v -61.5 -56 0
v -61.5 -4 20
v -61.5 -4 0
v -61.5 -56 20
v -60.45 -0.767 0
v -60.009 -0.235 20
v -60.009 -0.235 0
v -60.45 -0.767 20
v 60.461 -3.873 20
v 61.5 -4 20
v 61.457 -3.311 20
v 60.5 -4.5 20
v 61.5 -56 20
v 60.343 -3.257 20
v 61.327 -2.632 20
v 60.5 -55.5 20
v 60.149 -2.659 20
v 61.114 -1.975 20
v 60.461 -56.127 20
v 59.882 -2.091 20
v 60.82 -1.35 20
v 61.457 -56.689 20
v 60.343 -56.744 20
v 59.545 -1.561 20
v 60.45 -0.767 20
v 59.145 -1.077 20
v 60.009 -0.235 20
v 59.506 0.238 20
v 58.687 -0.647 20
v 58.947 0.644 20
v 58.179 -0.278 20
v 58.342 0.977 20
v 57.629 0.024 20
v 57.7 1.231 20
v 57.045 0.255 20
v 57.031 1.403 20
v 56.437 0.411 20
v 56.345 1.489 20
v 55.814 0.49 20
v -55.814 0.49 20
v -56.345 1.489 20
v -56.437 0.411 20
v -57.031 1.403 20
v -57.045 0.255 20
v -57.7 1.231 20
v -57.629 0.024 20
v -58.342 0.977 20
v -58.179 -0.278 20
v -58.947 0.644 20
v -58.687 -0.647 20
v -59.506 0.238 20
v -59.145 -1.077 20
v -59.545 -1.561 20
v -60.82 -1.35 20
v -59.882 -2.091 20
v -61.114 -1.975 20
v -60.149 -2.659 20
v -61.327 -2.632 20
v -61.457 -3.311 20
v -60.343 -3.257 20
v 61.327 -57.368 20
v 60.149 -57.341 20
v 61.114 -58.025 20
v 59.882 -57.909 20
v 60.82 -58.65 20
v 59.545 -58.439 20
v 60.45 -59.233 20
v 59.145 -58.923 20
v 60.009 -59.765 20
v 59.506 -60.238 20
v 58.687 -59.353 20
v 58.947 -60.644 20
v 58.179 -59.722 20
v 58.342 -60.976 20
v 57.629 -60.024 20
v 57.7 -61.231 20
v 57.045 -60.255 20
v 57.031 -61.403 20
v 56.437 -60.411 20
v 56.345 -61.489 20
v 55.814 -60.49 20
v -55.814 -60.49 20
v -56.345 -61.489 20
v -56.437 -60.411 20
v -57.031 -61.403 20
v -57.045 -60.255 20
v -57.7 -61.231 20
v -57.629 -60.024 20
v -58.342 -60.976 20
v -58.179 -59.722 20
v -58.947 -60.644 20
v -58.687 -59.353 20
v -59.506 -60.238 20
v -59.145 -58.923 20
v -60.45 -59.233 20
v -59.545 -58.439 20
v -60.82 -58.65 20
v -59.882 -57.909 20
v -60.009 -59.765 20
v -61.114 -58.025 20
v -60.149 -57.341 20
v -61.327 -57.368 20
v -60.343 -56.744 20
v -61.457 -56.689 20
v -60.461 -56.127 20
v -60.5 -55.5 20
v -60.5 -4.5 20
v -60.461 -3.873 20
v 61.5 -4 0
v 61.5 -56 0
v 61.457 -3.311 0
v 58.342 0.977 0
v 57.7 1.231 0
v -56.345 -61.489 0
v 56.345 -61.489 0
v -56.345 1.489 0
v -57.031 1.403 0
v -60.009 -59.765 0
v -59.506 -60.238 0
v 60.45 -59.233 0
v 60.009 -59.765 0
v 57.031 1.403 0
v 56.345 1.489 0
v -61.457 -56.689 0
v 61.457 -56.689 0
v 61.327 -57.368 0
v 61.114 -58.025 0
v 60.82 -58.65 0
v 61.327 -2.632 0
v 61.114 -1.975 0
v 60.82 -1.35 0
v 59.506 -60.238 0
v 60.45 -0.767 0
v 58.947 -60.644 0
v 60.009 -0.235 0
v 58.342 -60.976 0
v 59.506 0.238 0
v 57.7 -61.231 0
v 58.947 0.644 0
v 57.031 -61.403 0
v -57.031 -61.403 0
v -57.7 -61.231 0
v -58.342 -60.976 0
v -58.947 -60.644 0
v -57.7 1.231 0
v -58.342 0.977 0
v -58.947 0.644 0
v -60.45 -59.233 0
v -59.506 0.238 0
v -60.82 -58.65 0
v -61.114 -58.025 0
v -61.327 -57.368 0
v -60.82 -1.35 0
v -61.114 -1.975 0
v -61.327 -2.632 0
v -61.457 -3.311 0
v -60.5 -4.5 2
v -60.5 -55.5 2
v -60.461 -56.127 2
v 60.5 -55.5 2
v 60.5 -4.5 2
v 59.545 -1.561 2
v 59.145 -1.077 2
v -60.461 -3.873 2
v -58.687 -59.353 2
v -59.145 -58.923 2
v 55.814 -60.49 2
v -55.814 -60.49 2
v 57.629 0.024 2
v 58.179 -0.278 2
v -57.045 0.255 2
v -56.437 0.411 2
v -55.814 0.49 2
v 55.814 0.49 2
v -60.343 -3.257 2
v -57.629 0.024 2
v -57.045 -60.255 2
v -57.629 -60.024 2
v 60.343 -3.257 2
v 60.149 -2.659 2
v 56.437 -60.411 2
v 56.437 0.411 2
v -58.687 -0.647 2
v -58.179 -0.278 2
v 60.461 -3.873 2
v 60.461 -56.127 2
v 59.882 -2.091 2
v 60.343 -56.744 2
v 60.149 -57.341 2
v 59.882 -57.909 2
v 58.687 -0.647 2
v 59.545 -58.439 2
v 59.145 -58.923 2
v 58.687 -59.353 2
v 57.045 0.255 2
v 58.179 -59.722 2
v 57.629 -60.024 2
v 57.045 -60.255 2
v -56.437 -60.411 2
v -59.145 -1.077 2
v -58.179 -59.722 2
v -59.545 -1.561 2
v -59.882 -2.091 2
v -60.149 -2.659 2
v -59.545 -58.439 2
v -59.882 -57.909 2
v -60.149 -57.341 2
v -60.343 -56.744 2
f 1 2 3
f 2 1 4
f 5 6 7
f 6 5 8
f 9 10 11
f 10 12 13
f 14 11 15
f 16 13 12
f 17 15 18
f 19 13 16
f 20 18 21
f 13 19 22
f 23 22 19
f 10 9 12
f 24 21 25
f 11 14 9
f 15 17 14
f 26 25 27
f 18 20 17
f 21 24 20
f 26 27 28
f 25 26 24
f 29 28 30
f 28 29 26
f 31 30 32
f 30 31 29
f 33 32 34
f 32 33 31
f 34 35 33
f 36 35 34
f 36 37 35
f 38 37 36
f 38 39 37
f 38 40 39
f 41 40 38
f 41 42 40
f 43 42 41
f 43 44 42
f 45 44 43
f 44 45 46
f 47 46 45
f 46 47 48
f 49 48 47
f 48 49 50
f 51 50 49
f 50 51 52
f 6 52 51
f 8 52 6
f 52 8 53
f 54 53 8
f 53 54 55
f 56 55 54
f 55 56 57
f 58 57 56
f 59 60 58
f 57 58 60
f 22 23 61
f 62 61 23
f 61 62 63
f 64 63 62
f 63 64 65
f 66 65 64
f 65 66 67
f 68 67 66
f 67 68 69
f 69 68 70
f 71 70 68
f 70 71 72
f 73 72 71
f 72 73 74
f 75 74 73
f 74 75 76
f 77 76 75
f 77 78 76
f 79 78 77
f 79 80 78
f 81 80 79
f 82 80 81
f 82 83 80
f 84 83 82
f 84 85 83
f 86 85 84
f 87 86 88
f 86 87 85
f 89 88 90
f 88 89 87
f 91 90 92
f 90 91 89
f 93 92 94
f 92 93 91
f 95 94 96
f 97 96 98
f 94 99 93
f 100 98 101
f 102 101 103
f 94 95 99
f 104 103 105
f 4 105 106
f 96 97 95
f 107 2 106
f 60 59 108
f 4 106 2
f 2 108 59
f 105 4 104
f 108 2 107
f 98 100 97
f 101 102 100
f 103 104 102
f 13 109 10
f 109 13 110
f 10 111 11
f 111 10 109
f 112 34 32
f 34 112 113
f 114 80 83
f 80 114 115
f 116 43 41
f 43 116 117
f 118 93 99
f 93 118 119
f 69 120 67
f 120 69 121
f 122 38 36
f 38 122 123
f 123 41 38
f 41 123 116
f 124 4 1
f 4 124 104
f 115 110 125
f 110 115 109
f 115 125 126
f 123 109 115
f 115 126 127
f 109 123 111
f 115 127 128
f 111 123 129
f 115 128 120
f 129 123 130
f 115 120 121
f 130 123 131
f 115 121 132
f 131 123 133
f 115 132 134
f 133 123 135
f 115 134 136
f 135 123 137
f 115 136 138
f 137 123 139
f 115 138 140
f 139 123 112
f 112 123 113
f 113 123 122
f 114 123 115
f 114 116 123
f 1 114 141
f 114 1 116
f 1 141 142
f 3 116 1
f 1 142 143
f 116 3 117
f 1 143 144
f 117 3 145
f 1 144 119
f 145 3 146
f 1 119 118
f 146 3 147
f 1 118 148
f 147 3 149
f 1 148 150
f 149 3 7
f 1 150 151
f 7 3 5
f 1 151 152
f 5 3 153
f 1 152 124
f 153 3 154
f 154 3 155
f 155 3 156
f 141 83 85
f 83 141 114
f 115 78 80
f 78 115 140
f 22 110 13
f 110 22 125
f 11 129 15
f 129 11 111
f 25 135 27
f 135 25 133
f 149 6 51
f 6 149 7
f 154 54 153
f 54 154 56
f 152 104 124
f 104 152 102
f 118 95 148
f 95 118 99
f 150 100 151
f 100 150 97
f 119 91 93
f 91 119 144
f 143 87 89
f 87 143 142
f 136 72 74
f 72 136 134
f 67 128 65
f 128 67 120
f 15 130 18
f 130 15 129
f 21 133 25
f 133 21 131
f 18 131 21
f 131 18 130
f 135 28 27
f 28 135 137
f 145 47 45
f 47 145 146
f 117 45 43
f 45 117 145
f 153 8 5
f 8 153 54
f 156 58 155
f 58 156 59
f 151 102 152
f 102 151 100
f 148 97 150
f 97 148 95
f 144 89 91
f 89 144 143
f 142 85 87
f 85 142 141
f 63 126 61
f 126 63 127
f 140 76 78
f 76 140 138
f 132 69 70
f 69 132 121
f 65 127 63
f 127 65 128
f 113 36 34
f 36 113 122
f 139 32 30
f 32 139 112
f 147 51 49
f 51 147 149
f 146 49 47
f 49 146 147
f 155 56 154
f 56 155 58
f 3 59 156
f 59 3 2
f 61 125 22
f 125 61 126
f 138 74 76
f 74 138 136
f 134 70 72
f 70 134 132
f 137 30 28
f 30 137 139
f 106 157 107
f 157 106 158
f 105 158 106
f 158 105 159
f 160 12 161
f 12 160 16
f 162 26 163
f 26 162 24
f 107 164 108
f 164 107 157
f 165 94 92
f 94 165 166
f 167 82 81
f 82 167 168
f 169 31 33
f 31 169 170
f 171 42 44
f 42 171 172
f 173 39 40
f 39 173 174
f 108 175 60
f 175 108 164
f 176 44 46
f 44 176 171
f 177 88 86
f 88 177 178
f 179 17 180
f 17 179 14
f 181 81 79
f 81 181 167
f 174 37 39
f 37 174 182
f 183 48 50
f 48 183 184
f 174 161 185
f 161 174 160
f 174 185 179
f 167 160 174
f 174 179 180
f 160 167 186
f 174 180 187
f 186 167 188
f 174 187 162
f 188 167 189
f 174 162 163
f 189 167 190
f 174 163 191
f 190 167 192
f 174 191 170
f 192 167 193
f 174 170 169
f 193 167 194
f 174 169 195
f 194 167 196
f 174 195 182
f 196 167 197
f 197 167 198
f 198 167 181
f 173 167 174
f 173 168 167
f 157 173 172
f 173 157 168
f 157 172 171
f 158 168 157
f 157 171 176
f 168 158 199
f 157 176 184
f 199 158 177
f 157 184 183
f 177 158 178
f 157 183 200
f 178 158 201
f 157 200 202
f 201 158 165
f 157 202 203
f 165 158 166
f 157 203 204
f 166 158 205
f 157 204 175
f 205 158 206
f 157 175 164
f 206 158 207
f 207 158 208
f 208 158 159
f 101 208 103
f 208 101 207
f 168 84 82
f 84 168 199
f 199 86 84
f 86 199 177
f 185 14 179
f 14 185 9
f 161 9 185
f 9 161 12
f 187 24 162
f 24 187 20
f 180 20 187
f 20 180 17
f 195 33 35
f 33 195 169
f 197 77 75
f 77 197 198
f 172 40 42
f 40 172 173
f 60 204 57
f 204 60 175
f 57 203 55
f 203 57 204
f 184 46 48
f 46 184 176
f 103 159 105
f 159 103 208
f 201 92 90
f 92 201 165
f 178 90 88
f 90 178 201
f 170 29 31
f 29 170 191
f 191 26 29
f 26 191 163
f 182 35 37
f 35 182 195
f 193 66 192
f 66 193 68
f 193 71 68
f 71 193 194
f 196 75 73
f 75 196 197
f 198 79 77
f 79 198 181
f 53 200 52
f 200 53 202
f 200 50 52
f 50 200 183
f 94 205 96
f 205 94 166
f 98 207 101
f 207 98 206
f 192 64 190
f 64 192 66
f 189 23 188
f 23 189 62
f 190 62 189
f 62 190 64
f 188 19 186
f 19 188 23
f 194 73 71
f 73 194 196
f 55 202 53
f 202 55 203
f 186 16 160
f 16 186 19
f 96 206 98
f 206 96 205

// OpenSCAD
$fn = 50;


difference() {
	union() {
		translate(v = [0, -30.0000000000, 0]) {
			hull() {
				translate(v = [-56.0000000000, 26.0000000000, 0]) {
					cylinder(h = 20, r = 5.5000000000);
				}
				translate(v = [56.0000000000, 26.0000000000, 0]) {
					cylinder(h = 20, r = 5.5000000000);
				}
				translate(v = [-56.0000000000, -26.0000000000, 0]) {
					cylinder(h = 20, r = 5.5000000000);
				}
				translate(v = [56.0000000000, -26.0000000000, 0]) {
					cylinder(h = 20, r = 5.5000000000);
				}
			}
		}
	}
	union() {
		translate(v = [0, -30.0000000000, 2]) {
			hull() {
				translate(v = [-55.5000000000, 25.5000000000, 0]) {
					cylinder(h = 40, r = 5);
				}
				translate(v = [55.5000000000, 25.5000000000, 0]) {
					cylinder(h = 40, r = 5);
				}
				translate(v = [-55.5000000000, -25.5000000000, 0]) {
					cylinder(h = 40, r = 5);
				}
				translate(v = [55.5000000000, -25.5000000000, 0]) {
					cylinder(h = 40, r = 5);
				}
			}
		}
	}
}
